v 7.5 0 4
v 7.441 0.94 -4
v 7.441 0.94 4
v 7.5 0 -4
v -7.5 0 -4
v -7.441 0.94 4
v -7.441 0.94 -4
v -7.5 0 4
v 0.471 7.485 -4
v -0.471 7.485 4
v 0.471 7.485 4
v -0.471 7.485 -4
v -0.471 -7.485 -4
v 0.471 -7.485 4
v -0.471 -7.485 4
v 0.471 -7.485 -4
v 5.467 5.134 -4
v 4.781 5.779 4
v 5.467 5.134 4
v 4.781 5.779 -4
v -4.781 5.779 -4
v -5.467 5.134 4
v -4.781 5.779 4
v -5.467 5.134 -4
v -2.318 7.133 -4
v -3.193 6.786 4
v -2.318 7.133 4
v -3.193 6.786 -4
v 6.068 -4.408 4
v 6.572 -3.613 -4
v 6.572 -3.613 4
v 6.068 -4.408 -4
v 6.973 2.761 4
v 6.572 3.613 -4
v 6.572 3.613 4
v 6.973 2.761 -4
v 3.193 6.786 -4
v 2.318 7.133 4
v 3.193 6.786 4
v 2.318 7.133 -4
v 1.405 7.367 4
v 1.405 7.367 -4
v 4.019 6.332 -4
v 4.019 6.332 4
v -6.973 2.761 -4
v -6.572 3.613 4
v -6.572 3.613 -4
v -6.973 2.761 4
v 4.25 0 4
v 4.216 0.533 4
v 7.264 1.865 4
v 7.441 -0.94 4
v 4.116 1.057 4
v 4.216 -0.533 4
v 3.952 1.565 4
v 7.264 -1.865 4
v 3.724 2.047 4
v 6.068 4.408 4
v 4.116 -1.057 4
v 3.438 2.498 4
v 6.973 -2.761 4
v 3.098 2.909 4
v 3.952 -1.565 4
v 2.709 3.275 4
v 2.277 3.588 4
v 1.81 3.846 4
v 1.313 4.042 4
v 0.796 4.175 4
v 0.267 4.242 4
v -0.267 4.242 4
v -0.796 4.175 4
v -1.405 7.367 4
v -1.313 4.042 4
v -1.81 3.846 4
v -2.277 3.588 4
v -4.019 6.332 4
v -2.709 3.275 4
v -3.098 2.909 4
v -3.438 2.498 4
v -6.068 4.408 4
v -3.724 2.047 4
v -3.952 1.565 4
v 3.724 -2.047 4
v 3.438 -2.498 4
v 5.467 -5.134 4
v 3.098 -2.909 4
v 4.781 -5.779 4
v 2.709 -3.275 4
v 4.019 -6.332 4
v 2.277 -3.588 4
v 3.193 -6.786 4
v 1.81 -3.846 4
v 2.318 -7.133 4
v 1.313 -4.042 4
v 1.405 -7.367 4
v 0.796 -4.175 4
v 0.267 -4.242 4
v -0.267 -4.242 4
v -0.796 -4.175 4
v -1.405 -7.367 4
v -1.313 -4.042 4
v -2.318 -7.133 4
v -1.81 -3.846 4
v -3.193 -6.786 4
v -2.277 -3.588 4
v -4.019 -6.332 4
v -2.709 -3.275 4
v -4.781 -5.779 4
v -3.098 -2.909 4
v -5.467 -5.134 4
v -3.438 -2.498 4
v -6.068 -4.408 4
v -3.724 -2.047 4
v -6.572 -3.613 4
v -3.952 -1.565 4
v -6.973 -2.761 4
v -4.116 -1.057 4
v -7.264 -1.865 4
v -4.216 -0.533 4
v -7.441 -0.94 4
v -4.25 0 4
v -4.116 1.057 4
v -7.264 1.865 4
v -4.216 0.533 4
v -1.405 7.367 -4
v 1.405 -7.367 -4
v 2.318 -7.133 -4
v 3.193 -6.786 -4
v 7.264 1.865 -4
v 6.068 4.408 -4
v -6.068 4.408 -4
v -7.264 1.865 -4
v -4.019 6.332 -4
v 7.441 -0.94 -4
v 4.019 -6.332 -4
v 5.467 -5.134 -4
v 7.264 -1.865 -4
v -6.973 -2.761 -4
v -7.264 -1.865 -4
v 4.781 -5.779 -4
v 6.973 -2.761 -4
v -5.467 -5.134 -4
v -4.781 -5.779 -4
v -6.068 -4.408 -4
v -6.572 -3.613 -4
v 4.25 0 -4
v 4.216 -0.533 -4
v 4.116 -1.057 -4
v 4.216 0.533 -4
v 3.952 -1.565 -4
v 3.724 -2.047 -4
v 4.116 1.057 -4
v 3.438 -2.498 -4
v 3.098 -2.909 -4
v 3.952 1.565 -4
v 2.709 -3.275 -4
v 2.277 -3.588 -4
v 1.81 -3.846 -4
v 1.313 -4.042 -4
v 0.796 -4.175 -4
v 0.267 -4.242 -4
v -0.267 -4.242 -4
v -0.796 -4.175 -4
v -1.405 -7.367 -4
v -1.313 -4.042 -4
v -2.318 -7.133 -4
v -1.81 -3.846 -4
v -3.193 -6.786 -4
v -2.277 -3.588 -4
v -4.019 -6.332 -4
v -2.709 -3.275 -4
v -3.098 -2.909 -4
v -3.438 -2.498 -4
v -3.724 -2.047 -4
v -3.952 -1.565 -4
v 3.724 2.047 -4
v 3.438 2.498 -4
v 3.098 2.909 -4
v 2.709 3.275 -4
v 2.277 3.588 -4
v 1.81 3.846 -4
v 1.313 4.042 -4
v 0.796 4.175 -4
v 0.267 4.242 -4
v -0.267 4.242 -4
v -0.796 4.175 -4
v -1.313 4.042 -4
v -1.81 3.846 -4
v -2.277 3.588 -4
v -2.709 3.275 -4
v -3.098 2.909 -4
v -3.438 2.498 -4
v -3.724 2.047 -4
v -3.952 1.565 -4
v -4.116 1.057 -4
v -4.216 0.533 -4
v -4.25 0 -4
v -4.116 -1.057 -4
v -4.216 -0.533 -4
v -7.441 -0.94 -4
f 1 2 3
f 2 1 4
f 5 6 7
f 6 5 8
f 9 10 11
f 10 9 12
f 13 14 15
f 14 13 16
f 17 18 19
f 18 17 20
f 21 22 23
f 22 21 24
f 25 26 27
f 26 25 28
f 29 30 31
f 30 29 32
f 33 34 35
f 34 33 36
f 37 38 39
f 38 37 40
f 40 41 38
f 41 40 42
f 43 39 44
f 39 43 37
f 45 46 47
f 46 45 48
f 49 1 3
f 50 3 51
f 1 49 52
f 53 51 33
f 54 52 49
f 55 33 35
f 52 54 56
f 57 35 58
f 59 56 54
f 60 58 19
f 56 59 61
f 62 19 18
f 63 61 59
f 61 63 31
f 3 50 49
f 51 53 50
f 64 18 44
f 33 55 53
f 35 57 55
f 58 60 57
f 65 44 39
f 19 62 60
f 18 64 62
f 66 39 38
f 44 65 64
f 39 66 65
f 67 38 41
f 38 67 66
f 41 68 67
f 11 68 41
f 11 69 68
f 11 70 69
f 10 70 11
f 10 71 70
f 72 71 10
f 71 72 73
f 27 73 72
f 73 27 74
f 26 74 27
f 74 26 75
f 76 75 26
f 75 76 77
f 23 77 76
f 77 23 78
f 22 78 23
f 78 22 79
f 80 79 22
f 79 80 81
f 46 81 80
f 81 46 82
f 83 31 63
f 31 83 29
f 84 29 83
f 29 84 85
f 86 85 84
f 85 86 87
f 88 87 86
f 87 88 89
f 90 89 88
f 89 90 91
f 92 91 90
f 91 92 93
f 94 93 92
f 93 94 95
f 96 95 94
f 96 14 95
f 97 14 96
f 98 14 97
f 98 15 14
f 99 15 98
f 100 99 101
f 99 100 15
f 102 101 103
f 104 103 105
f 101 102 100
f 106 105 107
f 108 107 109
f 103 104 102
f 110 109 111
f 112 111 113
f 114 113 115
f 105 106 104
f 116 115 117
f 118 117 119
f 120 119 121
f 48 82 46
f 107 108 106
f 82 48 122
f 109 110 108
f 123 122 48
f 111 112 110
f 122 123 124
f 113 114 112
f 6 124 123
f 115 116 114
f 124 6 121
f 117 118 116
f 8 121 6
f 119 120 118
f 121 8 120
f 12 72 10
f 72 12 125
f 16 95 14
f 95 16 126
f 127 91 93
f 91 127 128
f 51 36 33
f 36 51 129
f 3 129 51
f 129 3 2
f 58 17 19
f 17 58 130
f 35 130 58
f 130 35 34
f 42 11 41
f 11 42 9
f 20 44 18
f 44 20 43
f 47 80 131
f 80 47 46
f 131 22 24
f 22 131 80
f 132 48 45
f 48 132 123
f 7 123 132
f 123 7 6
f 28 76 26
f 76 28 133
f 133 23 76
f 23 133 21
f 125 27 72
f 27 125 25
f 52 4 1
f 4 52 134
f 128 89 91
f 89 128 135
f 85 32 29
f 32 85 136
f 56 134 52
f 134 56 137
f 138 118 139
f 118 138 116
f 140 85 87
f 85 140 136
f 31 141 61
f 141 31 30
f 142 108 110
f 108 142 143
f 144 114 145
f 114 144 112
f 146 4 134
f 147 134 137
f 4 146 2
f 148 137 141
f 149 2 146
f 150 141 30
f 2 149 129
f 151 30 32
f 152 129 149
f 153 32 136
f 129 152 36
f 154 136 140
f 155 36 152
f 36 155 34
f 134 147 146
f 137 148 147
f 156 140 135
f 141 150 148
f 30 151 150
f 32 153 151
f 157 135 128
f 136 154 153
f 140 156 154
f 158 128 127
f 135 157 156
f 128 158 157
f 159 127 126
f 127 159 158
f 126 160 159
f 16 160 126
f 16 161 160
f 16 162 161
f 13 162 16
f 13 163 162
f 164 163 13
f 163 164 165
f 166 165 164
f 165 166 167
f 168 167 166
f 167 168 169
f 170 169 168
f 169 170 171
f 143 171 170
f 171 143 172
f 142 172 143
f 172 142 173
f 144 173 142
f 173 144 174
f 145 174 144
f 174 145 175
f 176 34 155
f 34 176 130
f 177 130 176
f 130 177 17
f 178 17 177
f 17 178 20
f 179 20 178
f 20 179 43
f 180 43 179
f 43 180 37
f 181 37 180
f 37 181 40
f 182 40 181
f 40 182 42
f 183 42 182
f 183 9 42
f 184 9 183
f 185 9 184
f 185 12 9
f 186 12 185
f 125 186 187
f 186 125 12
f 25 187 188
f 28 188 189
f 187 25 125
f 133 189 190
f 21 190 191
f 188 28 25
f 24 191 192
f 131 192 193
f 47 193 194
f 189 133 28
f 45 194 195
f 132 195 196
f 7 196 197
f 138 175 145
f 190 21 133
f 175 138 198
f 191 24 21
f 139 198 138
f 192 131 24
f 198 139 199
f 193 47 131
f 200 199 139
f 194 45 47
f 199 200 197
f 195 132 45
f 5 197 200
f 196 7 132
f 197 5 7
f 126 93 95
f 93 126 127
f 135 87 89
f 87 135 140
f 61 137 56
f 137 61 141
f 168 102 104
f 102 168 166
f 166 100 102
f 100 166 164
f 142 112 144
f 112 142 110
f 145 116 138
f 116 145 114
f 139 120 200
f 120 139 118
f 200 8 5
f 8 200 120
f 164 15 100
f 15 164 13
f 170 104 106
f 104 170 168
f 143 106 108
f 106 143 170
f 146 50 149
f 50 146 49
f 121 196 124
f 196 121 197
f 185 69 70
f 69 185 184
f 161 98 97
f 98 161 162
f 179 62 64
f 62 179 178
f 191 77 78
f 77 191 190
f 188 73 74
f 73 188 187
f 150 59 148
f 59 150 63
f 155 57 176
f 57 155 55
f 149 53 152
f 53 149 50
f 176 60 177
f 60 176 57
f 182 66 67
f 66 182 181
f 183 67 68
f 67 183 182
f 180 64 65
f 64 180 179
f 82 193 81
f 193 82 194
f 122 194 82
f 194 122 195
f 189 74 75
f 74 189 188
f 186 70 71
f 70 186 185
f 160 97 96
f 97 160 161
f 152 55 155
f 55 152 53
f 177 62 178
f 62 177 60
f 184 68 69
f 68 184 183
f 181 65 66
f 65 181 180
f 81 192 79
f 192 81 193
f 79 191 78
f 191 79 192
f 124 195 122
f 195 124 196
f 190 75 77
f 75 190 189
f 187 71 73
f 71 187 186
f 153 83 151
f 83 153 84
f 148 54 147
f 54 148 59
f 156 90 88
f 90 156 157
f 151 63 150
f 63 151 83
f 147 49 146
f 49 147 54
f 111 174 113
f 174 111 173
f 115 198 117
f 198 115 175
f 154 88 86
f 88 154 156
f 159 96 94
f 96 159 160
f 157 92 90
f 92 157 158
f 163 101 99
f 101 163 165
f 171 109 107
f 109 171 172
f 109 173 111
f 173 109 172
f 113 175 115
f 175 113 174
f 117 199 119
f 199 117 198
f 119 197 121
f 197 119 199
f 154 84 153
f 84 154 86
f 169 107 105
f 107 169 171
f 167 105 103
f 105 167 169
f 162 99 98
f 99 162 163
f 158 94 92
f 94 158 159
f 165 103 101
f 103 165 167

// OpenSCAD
$fn = 50;


difference() {
	union() {
		translate(v = [0, 0, -4.0000000000]) {
			cylinder(h = 8, r = 7.5000000000);
		}
	}
	union() {
		translate(v = [0, 0, -100.0000000000]) {
			cylinder(h = 200, r = 4.2500000000);
		}
	}
}
